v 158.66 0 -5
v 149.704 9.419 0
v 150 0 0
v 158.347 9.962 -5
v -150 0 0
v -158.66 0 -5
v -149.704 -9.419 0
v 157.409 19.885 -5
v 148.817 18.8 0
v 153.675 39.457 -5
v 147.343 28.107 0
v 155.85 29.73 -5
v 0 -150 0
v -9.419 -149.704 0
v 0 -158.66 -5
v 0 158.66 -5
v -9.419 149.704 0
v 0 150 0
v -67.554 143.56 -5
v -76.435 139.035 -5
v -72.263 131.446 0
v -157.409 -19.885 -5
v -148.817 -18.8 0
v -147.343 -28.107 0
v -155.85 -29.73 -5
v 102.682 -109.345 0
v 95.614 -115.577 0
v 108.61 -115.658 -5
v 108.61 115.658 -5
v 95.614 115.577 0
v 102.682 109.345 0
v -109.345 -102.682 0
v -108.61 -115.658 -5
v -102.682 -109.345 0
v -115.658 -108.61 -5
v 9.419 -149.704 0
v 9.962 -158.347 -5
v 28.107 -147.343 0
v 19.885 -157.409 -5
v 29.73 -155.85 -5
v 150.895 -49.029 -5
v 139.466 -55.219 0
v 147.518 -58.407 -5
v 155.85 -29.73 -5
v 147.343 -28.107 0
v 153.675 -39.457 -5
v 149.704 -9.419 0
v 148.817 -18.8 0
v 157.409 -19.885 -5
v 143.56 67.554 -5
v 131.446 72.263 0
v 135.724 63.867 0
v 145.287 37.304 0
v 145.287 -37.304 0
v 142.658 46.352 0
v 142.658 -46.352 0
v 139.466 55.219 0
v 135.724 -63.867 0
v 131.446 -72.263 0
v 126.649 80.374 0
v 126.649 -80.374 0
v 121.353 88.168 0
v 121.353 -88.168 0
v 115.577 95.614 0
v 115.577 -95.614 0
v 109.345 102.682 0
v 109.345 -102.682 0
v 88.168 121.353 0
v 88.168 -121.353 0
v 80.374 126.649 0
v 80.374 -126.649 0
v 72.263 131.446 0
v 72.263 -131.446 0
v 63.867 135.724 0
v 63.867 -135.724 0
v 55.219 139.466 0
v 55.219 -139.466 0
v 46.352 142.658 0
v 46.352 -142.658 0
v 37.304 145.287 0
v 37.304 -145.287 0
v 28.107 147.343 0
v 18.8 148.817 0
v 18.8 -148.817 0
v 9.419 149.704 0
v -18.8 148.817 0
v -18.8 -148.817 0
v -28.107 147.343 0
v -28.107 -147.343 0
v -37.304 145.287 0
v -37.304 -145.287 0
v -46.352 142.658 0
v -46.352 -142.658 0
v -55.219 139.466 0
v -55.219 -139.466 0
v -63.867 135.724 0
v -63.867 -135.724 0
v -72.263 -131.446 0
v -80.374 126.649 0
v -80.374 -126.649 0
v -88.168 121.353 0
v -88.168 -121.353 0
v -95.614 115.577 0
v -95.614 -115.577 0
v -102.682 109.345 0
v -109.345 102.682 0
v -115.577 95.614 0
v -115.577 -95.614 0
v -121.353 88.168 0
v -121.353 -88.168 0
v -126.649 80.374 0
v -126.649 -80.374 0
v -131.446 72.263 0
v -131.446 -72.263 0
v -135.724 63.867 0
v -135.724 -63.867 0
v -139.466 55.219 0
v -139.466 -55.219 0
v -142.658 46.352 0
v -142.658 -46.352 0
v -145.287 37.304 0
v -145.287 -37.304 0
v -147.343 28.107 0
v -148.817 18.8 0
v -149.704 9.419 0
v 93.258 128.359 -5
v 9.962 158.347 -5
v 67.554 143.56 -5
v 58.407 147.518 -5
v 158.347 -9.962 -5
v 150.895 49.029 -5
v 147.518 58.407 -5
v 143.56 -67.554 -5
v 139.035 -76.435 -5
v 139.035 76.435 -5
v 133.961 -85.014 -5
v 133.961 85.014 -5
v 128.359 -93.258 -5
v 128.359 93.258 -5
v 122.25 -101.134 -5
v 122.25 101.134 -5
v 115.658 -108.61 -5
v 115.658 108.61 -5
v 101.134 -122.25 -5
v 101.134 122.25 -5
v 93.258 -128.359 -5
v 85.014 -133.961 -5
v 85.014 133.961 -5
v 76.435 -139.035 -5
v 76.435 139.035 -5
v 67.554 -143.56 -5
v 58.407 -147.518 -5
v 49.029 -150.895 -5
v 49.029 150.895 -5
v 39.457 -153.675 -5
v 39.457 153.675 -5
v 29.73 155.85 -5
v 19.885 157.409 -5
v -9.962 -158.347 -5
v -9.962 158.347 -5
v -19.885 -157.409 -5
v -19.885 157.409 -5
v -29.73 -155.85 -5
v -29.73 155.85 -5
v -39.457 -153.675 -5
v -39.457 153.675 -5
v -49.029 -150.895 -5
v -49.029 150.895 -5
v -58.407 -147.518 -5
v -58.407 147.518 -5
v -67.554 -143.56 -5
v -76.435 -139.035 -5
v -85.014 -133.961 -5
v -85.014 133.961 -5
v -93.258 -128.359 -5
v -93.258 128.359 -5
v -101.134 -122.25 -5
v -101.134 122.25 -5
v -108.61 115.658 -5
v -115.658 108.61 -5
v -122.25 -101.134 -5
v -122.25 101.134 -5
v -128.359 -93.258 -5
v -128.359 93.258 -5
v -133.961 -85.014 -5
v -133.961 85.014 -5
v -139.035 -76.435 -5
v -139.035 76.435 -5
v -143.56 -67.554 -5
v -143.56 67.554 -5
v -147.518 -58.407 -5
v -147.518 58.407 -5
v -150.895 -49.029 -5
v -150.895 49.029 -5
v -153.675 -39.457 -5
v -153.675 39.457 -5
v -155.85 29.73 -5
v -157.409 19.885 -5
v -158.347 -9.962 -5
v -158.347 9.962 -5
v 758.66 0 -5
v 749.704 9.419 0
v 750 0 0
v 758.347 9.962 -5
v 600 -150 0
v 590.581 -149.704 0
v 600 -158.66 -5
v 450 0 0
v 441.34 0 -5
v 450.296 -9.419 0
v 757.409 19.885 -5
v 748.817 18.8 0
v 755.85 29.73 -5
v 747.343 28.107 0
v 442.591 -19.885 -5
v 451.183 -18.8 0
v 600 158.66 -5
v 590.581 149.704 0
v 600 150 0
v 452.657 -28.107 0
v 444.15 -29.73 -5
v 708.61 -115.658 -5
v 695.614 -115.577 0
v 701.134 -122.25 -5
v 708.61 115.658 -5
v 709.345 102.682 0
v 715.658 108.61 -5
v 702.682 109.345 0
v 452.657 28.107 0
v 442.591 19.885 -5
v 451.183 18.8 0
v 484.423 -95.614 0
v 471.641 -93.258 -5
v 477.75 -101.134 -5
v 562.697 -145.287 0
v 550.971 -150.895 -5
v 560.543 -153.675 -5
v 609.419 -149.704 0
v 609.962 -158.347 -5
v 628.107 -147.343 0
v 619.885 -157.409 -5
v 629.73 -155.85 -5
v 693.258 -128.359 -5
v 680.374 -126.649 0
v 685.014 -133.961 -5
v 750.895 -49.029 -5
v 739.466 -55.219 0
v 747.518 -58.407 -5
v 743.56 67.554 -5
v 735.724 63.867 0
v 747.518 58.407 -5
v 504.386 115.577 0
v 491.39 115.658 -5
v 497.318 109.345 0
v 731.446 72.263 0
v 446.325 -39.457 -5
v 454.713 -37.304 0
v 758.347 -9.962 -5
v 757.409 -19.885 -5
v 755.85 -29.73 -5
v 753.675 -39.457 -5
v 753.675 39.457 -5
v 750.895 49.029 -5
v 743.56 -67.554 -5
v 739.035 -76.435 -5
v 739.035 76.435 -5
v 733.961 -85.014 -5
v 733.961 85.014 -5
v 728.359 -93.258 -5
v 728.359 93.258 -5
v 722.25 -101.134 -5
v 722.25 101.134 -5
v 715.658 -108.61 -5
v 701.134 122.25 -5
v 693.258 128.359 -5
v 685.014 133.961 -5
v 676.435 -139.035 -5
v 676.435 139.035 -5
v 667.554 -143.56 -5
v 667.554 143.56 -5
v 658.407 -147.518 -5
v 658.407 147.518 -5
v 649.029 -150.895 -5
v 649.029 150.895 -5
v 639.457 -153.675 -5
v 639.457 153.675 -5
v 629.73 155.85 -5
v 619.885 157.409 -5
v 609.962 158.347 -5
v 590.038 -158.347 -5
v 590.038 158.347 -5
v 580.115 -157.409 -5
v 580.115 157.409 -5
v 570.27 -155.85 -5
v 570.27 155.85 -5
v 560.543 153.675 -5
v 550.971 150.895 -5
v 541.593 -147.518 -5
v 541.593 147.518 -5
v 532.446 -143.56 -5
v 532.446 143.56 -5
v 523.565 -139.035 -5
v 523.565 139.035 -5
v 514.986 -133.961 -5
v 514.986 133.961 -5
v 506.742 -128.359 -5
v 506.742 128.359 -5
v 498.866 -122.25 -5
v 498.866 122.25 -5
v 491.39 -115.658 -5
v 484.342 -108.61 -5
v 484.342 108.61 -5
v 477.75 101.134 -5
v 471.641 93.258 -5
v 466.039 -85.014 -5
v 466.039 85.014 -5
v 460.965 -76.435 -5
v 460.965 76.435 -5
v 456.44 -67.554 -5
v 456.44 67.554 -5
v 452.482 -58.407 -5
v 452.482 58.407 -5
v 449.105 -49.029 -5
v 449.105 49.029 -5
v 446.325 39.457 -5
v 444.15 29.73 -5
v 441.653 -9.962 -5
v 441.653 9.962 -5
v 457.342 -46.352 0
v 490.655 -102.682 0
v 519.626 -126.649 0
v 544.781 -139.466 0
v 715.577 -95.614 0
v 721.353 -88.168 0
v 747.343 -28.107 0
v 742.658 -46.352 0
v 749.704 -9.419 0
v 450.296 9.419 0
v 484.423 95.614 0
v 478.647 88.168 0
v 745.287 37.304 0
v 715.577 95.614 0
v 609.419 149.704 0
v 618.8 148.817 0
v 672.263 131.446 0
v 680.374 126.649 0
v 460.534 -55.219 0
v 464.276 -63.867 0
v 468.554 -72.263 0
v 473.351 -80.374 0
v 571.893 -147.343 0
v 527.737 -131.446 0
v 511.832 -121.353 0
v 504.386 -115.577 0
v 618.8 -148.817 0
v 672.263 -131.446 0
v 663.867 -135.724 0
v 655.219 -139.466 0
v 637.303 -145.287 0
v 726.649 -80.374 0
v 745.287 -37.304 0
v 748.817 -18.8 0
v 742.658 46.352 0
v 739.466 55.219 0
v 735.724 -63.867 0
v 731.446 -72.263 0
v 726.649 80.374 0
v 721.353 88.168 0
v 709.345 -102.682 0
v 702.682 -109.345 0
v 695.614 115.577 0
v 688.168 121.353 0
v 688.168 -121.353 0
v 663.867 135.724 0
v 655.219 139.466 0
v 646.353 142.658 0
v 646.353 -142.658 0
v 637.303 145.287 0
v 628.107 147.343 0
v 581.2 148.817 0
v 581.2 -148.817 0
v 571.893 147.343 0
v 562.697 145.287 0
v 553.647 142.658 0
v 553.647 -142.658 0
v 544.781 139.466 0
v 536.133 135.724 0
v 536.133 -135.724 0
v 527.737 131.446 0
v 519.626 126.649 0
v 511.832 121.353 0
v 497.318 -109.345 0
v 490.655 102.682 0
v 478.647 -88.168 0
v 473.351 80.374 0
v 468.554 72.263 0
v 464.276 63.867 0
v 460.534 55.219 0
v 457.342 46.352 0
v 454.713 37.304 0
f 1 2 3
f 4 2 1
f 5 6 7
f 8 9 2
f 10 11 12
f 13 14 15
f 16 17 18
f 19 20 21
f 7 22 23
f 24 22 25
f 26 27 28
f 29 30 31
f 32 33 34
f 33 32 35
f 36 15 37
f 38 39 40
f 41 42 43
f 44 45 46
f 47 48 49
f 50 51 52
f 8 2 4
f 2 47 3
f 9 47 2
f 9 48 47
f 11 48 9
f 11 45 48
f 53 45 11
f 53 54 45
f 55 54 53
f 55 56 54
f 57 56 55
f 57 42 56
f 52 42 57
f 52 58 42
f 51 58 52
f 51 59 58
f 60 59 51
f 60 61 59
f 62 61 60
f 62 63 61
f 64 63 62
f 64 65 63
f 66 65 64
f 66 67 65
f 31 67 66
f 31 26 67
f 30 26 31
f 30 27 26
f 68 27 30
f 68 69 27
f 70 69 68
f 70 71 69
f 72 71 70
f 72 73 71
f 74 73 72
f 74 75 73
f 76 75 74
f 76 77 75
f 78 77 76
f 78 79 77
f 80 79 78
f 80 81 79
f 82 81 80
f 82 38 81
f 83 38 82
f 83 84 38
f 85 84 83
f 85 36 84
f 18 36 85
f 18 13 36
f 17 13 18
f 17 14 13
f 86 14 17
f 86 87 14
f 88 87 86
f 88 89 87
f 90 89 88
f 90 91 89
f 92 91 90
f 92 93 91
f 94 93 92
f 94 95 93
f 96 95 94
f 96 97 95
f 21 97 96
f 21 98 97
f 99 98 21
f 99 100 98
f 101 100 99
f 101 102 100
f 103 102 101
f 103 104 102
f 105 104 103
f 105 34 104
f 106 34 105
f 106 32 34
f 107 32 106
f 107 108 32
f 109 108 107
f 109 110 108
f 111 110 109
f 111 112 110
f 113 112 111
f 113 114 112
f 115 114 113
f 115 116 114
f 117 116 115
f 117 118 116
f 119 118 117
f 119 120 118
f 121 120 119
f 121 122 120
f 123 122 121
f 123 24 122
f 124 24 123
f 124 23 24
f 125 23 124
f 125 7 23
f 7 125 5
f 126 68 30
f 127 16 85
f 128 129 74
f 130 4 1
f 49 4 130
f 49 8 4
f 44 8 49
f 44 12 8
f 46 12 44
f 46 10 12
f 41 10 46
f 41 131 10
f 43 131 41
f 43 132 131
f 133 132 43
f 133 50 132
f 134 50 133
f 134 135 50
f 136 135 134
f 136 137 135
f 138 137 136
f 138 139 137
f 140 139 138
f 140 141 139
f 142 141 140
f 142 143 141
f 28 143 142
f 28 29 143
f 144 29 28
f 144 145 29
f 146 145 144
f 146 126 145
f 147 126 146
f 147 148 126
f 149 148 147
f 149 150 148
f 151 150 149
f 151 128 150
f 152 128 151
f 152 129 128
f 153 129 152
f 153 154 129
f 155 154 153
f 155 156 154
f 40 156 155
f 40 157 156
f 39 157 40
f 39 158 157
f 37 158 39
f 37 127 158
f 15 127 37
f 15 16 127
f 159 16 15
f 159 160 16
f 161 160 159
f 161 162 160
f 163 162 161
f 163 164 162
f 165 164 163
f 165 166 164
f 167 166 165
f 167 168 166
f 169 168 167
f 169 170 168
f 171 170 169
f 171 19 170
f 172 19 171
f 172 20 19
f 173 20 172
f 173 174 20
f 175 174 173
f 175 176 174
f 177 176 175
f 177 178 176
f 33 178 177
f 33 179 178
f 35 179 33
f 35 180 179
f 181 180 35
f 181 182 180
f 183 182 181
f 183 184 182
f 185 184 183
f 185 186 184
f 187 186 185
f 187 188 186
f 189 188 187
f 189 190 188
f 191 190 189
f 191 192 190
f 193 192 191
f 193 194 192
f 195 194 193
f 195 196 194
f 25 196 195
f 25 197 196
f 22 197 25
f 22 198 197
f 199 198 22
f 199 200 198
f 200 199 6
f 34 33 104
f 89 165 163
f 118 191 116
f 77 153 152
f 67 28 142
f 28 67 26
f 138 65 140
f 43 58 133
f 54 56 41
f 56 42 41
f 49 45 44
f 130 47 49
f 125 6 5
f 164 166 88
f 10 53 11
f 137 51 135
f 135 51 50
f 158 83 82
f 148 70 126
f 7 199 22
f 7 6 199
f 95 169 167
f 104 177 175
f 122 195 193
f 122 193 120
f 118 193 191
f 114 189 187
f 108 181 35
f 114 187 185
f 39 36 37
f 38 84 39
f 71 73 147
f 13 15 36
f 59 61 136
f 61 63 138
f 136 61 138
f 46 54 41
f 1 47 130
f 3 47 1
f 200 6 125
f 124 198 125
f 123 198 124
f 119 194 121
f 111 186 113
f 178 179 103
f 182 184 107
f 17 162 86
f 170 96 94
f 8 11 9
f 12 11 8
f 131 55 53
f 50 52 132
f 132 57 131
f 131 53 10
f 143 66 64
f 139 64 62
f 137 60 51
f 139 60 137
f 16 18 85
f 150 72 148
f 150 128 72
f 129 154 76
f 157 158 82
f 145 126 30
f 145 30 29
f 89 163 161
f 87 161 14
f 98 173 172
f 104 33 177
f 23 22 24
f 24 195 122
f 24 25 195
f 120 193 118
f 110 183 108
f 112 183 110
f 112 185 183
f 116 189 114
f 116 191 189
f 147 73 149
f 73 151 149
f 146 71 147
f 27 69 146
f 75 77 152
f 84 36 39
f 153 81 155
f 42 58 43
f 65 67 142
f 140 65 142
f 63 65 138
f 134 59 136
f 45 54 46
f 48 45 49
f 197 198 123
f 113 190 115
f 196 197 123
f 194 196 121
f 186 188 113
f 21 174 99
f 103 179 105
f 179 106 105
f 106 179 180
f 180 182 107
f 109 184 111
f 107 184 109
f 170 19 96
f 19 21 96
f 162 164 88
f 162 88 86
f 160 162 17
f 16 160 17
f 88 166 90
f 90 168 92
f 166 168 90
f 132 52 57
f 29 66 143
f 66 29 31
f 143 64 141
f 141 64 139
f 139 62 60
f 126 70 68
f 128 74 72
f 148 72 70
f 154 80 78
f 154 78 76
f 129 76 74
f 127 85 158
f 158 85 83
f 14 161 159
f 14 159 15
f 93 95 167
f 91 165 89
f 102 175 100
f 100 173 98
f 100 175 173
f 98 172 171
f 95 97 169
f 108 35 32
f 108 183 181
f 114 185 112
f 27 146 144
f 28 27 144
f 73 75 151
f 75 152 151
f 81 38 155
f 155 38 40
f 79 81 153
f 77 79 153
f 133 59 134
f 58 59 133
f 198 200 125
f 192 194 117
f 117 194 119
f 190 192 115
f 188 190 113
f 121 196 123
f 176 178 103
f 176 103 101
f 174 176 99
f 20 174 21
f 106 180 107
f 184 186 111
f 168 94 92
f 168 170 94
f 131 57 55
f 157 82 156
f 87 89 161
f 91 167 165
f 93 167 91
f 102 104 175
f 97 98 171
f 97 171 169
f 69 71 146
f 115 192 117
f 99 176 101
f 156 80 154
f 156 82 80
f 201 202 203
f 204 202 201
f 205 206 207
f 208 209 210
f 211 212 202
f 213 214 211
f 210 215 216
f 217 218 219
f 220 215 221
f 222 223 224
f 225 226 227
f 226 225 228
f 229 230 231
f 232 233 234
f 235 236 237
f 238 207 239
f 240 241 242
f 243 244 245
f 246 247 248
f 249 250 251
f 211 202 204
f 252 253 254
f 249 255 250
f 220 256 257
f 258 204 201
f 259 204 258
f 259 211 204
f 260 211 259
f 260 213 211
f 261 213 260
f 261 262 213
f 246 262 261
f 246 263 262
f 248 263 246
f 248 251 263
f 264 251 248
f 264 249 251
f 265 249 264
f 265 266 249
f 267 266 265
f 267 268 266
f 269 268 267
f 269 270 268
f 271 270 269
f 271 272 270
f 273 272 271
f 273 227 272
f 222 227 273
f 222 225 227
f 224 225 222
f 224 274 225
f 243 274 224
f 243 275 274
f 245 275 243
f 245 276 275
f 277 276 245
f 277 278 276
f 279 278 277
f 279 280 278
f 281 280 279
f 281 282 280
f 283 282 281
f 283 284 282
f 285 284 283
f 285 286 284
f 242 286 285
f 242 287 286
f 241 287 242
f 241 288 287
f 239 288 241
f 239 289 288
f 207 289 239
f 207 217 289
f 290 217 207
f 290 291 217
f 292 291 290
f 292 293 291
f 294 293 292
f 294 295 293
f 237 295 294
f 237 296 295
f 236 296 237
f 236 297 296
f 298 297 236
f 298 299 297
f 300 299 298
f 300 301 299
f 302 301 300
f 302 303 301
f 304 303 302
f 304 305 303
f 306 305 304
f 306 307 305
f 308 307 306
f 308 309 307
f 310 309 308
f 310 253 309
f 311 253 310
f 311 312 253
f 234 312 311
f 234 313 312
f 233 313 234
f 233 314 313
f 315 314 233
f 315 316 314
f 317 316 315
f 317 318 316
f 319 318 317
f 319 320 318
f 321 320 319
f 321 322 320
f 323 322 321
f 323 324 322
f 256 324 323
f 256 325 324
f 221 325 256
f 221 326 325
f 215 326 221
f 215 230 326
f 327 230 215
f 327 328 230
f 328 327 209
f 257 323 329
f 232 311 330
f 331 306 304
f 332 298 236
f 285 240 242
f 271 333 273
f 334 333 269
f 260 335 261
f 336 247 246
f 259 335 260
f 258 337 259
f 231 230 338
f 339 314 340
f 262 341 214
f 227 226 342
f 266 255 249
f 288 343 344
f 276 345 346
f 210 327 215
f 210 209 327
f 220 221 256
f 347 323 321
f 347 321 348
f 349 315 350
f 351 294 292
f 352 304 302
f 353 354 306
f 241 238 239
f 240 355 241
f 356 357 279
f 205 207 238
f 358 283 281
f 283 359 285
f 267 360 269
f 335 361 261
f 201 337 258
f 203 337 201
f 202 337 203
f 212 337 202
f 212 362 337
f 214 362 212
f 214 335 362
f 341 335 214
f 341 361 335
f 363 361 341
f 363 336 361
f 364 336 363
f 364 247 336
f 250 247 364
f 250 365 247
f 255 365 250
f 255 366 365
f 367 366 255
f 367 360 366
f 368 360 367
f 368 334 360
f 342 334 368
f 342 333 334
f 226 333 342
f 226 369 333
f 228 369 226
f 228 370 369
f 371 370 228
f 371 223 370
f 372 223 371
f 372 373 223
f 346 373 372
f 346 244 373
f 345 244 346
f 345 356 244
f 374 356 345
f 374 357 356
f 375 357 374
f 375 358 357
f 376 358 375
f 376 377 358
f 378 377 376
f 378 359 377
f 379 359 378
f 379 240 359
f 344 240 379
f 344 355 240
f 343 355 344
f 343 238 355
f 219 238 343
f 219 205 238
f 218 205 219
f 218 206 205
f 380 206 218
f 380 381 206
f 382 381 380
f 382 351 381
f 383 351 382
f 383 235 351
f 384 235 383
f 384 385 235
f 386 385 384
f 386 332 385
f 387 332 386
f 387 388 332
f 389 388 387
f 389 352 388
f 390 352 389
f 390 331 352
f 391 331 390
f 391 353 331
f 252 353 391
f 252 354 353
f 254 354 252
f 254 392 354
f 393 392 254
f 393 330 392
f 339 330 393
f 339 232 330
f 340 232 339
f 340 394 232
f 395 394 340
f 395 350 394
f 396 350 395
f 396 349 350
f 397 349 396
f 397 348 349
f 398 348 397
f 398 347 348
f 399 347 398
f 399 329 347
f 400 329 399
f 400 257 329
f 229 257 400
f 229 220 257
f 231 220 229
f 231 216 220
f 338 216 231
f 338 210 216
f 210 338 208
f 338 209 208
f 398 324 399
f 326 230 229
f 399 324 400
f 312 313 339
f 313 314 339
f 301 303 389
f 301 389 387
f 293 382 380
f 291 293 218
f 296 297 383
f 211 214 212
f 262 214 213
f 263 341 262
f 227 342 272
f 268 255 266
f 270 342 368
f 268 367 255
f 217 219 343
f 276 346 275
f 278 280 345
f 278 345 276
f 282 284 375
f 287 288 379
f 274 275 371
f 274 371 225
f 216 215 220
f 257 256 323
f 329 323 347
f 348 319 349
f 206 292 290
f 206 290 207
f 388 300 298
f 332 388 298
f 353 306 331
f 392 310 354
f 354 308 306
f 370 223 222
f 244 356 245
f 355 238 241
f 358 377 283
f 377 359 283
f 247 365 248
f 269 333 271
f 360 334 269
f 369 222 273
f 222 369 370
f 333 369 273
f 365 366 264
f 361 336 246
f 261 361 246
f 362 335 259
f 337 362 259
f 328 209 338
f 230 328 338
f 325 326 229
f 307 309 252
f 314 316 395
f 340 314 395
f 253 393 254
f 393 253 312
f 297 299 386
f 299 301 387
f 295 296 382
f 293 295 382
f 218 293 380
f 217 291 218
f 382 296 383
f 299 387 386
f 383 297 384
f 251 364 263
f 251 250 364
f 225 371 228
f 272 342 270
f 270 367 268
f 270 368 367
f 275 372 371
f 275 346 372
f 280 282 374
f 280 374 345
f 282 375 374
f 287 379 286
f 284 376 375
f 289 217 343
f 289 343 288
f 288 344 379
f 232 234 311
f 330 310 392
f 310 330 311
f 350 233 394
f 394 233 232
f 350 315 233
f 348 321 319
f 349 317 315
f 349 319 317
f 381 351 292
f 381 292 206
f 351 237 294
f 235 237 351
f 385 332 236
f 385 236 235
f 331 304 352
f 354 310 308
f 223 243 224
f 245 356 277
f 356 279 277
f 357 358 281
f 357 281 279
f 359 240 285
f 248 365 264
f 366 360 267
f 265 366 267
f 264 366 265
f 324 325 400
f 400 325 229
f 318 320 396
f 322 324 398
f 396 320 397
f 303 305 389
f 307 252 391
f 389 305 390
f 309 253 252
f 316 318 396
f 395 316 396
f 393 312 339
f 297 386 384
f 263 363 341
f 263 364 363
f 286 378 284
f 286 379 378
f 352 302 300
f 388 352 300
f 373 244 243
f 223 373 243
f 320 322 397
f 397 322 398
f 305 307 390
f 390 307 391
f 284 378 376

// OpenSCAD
$fn = 100;

translate([0, 0, 0])
    rotate([0, 0, 0])
        translate([0, 0, -5])
            cylinder(5, 158.66, 150, false);

translate([600, 0, 0])
    rotate([0, 0, 0])
        translate([0, 0, -5])
            cylinder(5, 158.66, 150, false);
